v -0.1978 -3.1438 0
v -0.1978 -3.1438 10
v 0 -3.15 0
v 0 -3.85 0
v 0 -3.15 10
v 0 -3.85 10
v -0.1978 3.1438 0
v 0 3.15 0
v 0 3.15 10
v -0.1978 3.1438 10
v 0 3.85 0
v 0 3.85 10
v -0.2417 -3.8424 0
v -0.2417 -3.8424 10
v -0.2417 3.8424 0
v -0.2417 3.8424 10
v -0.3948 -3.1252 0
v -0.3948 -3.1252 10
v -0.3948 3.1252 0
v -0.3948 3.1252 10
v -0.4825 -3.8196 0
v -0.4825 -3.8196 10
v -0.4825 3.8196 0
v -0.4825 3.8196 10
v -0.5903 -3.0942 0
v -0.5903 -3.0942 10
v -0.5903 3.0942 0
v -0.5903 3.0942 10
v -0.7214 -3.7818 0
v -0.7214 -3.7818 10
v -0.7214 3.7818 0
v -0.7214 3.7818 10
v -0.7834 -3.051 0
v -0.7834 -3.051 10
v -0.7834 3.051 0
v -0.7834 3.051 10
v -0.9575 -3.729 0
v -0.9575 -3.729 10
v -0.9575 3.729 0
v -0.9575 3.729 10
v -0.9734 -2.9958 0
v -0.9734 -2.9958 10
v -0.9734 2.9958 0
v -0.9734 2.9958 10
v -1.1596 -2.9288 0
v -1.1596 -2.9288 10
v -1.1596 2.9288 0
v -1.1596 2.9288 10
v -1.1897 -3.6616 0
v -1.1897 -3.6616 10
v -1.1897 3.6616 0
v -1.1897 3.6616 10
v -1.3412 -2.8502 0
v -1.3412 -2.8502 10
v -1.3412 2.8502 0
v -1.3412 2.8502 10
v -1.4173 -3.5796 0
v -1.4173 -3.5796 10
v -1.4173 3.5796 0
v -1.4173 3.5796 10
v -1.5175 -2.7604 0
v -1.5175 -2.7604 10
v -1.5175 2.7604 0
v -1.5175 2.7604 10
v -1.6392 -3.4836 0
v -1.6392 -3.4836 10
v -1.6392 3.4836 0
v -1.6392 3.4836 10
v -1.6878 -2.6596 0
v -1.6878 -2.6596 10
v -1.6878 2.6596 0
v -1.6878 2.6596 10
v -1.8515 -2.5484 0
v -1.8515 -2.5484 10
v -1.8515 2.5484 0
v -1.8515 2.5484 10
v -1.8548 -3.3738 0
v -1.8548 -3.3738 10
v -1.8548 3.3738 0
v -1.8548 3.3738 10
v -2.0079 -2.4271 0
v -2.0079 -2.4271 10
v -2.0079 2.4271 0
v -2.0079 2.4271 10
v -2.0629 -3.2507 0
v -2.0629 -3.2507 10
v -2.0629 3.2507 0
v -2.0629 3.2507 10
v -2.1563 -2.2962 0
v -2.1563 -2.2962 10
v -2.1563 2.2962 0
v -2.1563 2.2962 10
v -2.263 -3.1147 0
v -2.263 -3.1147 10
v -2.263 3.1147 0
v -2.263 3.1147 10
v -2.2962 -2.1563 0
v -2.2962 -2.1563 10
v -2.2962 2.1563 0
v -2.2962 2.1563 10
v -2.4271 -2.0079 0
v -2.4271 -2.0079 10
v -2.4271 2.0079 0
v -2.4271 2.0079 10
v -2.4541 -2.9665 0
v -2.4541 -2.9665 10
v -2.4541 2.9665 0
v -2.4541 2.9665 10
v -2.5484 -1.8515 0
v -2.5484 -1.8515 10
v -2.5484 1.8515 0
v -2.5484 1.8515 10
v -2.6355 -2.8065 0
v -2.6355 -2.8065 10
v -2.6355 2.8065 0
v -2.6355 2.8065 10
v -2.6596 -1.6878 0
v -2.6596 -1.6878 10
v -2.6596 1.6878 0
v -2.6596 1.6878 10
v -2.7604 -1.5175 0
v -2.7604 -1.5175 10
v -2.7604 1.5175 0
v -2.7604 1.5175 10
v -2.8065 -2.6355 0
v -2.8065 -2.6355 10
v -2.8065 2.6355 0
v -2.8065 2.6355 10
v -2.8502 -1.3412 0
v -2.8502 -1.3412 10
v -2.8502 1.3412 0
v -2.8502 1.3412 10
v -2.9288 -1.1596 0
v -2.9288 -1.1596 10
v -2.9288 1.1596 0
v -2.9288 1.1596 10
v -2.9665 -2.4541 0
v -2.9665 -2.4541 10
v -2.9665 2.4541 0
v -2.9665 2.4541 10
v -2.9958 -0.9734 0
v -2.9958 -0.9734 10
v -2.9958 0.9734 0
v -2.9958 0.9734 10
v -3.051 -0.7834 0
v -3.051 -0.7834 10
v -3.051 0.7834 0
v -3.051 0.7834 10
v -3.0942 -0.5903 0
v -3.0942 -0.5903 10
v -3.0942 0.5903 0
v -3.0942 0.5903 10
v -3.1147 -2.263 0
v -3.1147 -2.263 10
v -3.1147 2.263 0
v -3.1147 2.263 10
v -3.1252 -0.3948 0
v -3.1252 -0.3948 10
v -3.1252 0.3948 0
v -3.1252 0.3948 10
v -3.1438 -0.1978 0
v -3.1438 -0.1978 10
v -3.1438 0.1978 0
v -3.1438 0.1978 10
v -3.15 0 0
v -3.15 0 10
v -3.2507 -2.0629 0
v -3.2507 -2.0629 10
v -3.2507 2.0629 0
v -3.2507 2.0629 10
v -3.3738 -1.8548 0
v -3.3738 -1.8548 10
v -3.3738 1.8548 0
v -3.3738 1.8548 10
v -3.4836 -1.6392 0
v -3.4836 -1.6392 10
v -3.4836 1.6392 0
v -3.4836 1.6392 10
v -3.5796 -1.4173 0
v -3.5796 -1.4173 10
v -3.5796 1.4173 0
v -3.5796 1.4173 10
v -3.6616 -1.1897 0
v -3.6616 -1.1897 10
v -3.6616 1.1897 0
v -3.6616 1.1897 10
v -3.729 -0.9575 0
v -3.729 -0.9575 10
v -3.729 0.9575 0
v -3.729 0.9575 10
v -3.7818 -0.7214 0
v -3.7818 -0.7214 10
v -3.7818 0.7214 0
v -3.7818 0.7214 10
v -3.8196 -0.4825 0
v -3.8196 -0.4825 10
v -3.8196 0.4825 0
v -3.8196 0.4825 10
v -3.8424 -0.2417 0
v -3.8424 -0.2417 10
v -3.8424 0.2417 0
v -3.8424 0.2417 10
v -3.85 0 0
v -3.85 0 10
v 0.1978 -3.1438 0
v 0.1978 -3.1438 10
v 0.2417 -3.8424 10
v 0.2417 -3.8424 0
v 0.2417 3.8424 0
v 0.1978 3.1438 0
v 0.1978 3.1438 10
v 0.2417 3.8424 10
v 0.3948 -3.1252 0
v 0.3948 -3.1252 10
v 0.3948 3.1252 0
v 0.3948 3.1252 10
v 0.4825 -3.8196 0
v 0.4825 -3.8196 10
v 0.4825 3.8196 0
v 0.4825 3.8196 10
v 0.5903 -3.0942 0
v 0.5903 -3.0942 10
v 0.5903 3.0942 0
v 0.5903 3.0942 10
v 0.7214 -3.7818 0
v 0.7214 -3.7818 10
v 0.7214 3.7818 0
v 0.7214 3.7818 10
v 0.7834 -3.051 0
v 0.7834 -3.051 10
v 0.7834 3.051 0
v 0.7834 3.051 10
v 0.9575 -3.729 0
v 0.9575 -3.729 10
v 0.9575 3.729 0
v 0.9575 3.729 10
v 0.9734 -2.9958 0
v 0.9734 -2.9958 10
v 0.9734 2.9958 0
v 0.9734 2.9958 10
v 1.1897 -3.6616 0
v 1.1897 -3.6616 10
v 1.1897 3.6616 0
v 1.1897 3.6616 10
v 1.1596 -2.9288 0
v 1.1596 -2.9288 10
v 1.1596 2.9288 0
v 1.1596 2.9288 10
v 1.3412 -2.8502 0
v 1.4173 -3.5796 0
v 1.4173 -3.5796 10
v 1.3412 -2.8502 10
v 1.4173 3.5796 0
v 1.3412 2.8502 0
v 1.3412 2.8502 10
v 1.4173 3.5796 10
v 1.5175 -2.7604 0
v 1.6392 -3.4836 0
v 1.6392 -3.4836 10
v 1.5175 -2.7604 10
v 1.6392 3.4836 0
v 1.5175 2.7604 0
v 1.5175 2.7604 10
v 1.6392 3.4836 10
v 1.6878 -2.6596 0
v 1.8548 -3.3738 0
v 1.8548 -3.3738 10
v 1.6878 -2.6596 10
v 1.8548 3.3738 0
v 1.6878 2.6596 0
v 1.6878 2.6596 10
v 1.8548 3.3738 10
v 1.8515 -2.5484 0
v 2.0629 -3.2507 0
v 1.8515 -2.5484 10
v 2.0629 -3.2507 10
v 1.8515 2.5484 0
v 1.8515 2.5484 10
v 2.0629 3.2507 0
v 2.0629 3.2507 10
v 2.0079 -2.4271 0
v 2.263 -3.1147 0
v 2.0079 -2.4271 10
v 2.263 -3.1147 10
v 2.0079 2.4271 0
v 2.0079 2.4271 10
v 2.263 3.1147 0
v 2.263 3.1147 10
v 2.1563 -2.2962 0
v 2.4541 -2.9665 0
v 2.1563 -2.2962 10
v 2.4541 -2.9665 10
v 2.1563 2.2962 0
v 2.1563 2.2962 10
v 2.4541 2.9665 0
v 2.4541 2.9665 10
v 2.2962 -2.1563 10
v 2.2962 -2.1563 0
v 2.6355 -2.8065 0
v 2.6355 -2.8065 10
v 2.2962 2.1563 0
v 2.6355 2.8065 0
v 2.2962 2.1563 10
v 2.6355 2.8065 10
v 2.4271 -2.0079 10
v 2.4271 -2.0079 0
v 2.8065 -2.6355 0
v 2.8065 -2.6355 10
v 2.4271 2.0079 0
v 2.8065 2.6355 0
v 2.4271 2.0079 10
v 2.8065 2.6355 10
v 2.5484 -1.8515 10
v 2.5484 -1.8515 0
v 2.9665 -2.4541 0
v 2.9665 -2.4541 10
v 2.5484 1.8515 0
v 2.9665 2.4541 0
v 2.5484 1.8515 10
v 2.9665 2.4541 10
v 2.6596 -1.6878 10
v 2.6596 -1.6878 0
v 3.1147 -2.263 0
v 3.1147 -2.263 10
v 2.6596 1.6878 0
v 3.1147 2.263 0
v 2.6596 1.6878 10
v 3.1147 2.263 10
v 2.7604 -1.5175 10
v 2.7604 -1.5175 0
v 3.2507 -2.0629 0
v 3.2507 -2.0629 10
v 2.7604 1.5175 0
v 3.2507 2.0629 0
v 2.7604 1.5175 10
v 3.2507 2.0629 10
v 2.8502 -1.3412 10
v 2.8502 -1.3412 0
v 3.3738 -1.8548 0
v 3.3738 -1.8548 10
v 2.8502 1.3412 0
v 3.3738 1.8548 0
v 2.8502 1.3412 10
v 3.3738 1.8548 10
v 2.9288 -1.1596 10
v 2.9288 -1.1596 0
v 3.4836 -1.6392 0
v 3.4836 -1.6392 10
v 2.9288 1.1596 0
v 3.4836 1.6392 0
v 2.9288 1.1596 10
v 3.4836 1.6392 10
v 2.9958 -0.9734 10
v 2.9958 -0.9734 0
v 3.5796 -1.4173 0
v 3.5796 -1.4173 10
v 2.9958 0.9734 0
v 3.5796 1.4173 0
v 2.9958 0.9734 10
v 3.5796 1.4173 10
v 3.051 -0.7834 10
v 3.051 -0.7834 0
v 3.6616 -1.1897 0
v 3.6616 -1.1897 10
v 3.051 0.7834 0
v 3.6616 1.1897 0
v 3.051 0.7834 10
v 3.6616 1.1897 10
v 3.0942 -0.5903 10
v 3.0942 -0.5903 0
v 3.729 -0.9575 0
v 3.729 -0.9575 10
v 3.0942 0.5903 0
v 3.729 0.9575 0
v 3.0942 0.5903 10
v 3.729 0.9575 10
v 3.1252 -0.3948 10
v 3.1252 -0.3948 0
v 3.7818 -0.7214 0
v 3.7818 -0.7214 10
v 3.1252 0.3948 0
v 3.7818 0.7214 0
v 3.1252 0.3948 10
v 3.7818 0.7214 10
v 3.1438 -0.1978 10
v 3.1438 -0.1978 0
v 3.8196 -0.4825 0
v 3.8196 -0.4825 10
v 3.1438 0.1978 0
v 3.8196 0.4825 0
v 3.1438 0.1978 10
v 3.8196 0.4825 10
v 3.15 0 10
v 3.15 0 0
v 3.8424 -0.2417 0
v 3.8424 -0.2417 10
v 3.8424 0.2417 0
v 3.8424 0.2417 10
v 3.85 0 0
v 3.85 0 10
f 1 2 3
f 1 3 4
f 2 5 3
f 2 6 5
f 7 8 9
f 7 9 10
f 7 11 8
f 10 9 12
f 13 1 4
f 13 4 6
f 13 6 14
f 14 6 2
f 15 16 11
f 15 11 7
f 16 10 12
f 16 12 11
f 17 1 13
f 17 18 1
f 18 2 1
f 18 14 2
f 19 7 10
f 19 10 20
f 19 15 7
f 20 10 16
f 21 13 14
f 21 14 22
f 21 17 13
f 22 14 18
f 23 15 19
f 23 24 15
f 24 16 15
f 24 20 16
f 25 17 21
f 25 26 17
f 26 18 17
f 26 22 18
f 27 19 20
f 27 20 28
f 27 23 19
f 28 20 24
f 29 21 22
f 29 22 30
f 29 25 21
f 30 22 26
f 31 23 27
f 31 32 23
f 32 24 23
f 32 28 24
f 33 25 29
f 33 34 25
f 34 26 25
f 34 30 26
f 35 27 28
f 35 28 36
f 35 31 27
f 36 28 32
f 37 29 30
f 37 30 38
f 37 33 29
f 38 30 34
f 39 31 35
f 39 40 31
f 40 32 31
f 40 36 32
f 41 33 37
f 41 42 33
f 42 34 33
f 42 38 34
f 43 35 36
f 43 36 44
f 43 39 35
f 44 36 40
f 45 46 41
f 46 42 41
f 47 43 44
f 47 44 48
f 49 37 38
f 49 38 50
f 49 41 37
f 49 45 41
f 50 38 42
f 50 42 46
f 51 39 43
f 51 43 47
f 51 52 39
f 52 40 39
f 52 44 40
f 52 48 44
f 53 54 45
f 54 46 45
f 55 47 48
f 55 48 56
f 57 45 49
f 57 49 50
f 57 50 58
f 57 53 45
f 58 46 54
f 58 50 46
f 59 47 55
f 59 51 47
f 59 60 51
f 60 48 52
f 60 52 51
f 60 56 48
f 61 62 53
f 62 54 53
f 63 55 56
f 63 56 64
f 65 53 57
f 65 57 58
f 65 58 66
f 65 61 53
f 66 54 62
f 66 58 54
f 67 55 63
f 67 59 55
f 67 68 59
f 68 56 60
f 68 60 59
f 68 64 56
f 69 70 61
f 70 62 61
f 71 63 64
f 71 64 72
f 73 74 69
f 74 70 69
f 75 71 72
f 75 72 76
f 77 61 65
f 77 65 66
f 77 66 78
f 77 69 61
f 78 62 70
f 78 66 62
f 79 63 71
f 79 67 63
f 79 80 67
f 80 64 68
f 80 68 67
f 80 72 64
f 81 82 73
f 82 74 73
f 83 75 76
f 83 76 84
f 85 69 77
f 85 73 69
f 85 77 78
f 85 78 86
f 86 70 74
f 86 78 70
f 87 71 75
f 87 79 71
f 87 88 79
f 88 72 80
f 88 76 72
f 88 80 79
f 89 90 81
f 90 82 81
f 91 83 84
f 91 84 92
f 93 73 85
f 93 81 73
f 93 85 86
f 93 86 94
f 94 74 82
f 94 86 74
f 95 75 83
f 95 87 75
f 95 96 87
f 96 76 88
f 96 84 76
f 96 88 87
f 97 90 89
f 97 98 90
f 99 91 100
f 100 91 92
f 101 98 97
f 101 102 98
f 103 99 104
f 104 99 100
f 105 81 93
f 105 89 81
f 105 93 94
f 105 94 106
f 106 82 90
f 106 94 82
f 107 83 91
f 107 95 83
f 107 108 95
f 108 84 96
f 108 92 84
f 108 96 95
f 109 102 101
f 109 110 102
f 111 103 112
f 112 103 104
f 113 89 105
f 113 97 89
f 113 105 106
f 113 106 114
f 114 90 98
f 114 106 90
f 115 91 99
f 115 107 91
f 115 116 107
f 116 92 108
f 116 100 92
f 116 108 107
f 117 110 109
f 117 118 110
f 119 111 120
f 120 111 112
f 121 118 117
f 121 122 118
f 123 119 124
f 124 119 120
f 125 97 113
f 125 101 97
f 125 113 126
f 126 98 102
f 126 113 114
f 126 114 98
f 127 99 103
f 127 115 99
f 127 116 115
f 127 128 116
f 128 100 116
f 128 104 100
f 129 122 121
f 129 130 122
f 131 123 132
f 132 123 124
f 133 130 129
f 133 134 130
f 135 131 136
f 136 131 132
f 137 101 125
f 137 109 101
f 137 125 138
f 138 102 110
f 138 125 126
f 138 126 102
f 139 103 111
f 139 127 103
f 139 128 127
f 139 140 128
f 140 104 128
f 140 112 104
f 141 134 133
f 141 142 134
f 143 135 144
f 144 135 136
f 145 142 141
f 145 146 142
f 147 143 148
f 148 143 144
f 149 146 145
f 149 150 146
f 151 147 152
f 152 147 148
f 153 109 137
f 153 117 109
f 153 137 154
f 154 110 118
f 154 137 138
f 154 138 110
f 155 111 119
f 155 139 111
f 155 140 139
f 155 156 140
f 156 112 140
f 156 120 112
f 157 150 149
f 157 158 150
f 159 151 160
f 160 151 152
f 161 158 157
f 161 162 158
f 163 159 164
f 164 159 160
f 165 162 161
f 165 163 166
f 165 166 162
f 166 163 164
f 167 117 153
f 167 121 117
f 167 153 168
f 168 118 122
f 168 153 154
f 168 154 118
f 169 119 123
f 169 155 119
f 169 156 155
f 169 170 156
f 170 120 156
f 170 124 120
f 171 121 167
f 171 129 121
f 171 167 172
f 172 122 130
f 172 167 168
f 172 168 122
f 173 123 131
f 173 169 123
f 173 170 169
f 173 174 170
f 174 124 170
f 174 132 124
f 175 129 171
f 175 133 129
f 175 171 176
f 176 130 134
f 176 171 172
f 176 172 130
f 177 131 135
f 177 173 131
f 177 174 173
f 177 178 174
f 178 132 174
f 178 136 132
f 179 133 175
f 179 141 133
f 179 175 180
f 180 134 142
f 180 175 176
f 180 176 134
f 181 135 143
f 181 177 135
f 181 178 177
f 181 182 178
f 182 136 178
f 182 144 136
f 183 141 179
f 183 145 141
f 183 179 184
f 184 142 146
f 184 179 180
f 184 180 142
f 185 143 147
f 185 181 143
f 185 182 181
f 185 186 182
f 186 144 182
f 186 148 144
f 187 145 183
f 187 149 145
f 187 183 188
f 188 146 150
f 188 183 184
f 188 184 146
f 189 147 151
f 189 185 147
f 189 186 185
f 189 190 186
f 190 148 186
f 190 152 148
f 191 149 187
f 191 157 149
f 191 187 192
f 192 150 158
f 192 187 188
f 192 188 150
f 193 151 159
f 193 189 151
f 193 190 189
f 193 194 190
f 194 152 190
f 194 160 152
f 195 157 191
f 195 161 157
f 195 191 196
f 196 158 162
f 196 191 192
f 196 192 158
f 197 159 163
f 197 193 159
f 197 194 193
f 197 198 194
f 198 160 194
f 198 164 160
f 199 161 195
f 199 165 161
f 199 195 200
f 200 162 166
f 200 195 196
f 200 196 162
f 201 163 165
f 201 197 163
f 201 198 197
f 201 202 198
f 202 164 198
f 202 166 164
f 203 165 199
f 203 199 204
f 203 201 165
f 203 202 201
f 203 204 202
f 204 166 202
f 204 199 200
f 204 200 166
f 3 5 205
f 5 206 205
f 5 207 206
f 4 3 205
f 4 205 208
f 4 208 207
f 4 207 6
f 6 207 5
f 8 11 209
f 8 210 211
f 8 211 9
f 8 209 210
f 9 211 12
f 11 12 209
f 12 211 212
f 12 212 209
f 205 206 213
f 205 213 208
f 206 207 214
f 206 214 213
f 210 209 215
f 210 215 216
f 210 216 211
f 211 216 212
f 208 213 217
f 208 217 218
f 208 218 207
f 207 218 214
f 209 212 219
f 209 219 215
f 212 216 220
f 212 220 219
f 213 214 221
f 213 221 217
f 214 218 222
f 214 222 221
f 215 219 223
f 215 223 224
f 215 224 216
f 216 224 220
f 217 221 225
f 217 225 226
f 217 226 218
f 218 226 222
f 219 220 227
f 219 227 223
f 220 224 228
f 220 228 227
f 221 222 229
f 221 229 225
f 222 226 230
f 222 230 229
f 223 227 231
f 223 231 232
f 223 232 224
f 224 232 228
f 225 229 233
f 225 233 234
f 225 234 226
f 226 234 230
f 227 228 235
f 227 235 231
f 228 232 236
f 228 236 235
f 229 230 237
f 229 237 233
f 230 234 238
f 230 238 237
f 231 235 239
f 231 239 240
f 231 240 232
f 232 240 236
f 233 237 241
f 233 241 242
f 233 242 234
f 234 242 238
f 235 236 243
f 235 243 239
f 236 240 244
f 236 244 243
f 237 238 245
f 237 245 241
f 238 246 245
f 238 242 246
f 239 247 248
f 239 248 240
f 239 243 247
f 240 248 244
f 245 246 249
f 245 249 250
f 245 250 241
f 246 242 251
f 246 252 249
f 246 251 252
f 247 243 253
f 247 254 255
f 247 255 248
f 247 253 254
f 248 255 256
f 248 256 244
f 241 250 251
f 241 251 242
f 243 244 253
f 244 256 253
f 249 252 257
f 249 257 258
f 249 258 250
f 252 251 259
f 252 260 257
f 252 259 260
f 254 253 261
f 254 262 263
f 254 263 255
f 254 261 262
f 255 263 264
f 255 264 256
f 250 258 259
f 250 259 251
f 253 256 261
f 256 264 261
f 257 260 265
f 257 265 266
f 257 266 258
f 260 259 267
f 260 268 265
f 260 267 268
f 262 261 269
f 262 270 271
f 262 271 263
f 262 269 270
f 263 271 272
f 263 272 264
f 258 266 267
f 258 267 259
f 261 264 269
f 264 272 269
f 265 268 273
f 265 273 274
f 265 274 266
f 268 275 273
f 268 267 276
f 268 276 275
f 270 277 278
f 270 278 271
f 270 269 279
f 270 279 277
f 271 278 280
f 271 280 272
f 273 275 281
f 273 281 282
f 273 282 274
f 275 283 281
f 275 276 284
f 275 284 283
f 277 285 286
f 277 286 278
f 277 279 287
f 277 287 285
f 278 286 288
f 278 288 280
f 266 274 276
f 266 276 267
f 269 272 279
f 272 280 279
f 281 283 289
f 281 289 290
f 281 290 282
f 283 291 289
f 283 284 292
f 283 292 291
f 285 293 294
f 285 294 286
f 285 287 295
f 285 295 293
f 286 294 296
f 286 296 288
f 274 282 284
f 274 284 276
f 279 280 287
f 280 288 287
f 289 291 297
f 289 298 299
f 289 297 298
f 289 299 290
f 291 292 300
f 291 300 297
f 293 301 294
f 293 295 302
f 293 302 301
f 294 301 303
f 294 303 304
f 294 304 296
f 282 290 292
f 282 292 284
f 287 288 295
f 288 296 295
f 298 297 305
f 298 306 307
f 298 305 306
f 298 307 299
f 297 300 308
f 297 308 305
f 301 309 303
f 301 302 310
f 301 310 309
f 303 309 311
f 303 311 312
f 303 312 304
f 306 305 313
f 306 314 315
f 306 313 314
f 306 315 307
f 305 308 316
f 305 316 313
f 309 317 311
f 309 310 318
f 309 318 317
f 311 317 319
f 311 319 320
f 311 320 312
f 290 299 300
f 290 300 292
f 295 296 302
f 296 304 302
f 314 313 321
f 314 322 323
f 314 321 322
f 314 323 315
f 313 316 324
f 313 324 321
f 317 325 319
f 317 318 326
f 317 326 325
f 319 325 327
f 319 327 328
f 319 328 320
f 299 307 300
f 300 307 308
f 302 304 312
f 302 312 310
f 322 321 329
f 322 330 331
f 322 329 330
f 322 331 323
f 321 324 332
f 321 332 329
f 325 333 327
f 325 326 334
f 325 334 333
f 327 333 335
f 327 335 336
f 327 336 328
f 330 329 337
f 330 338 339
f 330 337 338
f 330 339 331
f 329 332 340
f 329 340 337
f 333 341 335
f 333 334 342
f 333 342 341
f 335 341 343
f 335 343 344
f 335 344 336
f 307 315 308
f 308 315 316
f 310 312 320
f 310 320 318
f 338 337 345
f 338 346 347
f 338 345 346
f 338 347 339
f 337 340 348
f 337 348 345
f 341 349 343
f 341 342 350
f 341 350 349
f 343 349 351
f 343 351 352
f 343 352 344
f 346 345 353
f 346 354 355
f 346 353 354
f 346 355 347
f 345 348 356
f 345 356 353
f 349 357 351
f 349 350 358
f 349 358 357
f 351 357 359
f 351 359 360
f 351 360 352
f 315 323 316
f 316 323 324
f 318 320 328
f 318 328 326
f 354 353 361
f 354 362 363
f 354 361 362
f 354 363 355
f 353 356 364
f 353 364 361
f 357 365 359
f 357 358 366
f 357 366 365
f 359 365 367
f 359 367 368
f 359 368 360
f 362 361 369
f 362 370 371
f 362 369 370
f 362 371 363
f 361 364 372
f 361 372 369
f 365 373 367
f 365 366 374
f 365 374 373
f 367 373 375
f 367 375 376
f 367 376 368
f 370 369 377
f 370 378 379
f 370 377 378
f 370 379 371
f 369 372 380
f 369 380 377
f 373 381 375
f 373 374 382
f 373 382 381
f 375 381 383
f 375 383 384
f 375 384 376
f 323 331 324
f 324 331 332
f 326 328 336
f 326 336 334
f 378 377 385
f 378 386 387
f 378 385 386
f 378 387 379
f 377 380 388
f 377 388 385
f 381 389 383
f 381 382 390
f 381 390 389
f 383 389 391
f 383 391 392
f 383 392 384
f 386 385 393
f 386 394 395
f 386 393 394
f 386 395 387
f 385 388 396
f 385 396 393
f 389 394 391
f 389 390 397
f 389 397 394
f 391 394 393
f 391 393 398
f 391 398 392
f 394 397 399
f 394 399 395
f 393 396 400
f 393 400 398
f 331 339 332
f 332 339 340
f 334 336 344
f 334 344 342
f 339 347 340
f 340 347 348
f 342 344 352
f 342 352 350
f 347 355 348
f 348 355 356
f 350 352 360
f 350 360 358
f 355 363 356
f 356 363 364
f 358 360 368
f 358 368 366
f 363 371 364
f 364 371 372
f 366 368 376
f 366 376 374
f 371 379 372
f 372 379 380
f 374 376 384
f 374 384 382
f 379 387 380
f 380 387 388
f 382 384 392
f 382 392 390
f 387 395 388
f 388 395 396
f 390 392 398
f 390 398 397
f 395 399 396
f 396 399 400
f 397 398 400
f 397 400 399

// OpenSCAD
$fn=100;

difference(){
    cylinder(d=7.7, h=10);
    cylinder(d=6.3, h=10);
}
